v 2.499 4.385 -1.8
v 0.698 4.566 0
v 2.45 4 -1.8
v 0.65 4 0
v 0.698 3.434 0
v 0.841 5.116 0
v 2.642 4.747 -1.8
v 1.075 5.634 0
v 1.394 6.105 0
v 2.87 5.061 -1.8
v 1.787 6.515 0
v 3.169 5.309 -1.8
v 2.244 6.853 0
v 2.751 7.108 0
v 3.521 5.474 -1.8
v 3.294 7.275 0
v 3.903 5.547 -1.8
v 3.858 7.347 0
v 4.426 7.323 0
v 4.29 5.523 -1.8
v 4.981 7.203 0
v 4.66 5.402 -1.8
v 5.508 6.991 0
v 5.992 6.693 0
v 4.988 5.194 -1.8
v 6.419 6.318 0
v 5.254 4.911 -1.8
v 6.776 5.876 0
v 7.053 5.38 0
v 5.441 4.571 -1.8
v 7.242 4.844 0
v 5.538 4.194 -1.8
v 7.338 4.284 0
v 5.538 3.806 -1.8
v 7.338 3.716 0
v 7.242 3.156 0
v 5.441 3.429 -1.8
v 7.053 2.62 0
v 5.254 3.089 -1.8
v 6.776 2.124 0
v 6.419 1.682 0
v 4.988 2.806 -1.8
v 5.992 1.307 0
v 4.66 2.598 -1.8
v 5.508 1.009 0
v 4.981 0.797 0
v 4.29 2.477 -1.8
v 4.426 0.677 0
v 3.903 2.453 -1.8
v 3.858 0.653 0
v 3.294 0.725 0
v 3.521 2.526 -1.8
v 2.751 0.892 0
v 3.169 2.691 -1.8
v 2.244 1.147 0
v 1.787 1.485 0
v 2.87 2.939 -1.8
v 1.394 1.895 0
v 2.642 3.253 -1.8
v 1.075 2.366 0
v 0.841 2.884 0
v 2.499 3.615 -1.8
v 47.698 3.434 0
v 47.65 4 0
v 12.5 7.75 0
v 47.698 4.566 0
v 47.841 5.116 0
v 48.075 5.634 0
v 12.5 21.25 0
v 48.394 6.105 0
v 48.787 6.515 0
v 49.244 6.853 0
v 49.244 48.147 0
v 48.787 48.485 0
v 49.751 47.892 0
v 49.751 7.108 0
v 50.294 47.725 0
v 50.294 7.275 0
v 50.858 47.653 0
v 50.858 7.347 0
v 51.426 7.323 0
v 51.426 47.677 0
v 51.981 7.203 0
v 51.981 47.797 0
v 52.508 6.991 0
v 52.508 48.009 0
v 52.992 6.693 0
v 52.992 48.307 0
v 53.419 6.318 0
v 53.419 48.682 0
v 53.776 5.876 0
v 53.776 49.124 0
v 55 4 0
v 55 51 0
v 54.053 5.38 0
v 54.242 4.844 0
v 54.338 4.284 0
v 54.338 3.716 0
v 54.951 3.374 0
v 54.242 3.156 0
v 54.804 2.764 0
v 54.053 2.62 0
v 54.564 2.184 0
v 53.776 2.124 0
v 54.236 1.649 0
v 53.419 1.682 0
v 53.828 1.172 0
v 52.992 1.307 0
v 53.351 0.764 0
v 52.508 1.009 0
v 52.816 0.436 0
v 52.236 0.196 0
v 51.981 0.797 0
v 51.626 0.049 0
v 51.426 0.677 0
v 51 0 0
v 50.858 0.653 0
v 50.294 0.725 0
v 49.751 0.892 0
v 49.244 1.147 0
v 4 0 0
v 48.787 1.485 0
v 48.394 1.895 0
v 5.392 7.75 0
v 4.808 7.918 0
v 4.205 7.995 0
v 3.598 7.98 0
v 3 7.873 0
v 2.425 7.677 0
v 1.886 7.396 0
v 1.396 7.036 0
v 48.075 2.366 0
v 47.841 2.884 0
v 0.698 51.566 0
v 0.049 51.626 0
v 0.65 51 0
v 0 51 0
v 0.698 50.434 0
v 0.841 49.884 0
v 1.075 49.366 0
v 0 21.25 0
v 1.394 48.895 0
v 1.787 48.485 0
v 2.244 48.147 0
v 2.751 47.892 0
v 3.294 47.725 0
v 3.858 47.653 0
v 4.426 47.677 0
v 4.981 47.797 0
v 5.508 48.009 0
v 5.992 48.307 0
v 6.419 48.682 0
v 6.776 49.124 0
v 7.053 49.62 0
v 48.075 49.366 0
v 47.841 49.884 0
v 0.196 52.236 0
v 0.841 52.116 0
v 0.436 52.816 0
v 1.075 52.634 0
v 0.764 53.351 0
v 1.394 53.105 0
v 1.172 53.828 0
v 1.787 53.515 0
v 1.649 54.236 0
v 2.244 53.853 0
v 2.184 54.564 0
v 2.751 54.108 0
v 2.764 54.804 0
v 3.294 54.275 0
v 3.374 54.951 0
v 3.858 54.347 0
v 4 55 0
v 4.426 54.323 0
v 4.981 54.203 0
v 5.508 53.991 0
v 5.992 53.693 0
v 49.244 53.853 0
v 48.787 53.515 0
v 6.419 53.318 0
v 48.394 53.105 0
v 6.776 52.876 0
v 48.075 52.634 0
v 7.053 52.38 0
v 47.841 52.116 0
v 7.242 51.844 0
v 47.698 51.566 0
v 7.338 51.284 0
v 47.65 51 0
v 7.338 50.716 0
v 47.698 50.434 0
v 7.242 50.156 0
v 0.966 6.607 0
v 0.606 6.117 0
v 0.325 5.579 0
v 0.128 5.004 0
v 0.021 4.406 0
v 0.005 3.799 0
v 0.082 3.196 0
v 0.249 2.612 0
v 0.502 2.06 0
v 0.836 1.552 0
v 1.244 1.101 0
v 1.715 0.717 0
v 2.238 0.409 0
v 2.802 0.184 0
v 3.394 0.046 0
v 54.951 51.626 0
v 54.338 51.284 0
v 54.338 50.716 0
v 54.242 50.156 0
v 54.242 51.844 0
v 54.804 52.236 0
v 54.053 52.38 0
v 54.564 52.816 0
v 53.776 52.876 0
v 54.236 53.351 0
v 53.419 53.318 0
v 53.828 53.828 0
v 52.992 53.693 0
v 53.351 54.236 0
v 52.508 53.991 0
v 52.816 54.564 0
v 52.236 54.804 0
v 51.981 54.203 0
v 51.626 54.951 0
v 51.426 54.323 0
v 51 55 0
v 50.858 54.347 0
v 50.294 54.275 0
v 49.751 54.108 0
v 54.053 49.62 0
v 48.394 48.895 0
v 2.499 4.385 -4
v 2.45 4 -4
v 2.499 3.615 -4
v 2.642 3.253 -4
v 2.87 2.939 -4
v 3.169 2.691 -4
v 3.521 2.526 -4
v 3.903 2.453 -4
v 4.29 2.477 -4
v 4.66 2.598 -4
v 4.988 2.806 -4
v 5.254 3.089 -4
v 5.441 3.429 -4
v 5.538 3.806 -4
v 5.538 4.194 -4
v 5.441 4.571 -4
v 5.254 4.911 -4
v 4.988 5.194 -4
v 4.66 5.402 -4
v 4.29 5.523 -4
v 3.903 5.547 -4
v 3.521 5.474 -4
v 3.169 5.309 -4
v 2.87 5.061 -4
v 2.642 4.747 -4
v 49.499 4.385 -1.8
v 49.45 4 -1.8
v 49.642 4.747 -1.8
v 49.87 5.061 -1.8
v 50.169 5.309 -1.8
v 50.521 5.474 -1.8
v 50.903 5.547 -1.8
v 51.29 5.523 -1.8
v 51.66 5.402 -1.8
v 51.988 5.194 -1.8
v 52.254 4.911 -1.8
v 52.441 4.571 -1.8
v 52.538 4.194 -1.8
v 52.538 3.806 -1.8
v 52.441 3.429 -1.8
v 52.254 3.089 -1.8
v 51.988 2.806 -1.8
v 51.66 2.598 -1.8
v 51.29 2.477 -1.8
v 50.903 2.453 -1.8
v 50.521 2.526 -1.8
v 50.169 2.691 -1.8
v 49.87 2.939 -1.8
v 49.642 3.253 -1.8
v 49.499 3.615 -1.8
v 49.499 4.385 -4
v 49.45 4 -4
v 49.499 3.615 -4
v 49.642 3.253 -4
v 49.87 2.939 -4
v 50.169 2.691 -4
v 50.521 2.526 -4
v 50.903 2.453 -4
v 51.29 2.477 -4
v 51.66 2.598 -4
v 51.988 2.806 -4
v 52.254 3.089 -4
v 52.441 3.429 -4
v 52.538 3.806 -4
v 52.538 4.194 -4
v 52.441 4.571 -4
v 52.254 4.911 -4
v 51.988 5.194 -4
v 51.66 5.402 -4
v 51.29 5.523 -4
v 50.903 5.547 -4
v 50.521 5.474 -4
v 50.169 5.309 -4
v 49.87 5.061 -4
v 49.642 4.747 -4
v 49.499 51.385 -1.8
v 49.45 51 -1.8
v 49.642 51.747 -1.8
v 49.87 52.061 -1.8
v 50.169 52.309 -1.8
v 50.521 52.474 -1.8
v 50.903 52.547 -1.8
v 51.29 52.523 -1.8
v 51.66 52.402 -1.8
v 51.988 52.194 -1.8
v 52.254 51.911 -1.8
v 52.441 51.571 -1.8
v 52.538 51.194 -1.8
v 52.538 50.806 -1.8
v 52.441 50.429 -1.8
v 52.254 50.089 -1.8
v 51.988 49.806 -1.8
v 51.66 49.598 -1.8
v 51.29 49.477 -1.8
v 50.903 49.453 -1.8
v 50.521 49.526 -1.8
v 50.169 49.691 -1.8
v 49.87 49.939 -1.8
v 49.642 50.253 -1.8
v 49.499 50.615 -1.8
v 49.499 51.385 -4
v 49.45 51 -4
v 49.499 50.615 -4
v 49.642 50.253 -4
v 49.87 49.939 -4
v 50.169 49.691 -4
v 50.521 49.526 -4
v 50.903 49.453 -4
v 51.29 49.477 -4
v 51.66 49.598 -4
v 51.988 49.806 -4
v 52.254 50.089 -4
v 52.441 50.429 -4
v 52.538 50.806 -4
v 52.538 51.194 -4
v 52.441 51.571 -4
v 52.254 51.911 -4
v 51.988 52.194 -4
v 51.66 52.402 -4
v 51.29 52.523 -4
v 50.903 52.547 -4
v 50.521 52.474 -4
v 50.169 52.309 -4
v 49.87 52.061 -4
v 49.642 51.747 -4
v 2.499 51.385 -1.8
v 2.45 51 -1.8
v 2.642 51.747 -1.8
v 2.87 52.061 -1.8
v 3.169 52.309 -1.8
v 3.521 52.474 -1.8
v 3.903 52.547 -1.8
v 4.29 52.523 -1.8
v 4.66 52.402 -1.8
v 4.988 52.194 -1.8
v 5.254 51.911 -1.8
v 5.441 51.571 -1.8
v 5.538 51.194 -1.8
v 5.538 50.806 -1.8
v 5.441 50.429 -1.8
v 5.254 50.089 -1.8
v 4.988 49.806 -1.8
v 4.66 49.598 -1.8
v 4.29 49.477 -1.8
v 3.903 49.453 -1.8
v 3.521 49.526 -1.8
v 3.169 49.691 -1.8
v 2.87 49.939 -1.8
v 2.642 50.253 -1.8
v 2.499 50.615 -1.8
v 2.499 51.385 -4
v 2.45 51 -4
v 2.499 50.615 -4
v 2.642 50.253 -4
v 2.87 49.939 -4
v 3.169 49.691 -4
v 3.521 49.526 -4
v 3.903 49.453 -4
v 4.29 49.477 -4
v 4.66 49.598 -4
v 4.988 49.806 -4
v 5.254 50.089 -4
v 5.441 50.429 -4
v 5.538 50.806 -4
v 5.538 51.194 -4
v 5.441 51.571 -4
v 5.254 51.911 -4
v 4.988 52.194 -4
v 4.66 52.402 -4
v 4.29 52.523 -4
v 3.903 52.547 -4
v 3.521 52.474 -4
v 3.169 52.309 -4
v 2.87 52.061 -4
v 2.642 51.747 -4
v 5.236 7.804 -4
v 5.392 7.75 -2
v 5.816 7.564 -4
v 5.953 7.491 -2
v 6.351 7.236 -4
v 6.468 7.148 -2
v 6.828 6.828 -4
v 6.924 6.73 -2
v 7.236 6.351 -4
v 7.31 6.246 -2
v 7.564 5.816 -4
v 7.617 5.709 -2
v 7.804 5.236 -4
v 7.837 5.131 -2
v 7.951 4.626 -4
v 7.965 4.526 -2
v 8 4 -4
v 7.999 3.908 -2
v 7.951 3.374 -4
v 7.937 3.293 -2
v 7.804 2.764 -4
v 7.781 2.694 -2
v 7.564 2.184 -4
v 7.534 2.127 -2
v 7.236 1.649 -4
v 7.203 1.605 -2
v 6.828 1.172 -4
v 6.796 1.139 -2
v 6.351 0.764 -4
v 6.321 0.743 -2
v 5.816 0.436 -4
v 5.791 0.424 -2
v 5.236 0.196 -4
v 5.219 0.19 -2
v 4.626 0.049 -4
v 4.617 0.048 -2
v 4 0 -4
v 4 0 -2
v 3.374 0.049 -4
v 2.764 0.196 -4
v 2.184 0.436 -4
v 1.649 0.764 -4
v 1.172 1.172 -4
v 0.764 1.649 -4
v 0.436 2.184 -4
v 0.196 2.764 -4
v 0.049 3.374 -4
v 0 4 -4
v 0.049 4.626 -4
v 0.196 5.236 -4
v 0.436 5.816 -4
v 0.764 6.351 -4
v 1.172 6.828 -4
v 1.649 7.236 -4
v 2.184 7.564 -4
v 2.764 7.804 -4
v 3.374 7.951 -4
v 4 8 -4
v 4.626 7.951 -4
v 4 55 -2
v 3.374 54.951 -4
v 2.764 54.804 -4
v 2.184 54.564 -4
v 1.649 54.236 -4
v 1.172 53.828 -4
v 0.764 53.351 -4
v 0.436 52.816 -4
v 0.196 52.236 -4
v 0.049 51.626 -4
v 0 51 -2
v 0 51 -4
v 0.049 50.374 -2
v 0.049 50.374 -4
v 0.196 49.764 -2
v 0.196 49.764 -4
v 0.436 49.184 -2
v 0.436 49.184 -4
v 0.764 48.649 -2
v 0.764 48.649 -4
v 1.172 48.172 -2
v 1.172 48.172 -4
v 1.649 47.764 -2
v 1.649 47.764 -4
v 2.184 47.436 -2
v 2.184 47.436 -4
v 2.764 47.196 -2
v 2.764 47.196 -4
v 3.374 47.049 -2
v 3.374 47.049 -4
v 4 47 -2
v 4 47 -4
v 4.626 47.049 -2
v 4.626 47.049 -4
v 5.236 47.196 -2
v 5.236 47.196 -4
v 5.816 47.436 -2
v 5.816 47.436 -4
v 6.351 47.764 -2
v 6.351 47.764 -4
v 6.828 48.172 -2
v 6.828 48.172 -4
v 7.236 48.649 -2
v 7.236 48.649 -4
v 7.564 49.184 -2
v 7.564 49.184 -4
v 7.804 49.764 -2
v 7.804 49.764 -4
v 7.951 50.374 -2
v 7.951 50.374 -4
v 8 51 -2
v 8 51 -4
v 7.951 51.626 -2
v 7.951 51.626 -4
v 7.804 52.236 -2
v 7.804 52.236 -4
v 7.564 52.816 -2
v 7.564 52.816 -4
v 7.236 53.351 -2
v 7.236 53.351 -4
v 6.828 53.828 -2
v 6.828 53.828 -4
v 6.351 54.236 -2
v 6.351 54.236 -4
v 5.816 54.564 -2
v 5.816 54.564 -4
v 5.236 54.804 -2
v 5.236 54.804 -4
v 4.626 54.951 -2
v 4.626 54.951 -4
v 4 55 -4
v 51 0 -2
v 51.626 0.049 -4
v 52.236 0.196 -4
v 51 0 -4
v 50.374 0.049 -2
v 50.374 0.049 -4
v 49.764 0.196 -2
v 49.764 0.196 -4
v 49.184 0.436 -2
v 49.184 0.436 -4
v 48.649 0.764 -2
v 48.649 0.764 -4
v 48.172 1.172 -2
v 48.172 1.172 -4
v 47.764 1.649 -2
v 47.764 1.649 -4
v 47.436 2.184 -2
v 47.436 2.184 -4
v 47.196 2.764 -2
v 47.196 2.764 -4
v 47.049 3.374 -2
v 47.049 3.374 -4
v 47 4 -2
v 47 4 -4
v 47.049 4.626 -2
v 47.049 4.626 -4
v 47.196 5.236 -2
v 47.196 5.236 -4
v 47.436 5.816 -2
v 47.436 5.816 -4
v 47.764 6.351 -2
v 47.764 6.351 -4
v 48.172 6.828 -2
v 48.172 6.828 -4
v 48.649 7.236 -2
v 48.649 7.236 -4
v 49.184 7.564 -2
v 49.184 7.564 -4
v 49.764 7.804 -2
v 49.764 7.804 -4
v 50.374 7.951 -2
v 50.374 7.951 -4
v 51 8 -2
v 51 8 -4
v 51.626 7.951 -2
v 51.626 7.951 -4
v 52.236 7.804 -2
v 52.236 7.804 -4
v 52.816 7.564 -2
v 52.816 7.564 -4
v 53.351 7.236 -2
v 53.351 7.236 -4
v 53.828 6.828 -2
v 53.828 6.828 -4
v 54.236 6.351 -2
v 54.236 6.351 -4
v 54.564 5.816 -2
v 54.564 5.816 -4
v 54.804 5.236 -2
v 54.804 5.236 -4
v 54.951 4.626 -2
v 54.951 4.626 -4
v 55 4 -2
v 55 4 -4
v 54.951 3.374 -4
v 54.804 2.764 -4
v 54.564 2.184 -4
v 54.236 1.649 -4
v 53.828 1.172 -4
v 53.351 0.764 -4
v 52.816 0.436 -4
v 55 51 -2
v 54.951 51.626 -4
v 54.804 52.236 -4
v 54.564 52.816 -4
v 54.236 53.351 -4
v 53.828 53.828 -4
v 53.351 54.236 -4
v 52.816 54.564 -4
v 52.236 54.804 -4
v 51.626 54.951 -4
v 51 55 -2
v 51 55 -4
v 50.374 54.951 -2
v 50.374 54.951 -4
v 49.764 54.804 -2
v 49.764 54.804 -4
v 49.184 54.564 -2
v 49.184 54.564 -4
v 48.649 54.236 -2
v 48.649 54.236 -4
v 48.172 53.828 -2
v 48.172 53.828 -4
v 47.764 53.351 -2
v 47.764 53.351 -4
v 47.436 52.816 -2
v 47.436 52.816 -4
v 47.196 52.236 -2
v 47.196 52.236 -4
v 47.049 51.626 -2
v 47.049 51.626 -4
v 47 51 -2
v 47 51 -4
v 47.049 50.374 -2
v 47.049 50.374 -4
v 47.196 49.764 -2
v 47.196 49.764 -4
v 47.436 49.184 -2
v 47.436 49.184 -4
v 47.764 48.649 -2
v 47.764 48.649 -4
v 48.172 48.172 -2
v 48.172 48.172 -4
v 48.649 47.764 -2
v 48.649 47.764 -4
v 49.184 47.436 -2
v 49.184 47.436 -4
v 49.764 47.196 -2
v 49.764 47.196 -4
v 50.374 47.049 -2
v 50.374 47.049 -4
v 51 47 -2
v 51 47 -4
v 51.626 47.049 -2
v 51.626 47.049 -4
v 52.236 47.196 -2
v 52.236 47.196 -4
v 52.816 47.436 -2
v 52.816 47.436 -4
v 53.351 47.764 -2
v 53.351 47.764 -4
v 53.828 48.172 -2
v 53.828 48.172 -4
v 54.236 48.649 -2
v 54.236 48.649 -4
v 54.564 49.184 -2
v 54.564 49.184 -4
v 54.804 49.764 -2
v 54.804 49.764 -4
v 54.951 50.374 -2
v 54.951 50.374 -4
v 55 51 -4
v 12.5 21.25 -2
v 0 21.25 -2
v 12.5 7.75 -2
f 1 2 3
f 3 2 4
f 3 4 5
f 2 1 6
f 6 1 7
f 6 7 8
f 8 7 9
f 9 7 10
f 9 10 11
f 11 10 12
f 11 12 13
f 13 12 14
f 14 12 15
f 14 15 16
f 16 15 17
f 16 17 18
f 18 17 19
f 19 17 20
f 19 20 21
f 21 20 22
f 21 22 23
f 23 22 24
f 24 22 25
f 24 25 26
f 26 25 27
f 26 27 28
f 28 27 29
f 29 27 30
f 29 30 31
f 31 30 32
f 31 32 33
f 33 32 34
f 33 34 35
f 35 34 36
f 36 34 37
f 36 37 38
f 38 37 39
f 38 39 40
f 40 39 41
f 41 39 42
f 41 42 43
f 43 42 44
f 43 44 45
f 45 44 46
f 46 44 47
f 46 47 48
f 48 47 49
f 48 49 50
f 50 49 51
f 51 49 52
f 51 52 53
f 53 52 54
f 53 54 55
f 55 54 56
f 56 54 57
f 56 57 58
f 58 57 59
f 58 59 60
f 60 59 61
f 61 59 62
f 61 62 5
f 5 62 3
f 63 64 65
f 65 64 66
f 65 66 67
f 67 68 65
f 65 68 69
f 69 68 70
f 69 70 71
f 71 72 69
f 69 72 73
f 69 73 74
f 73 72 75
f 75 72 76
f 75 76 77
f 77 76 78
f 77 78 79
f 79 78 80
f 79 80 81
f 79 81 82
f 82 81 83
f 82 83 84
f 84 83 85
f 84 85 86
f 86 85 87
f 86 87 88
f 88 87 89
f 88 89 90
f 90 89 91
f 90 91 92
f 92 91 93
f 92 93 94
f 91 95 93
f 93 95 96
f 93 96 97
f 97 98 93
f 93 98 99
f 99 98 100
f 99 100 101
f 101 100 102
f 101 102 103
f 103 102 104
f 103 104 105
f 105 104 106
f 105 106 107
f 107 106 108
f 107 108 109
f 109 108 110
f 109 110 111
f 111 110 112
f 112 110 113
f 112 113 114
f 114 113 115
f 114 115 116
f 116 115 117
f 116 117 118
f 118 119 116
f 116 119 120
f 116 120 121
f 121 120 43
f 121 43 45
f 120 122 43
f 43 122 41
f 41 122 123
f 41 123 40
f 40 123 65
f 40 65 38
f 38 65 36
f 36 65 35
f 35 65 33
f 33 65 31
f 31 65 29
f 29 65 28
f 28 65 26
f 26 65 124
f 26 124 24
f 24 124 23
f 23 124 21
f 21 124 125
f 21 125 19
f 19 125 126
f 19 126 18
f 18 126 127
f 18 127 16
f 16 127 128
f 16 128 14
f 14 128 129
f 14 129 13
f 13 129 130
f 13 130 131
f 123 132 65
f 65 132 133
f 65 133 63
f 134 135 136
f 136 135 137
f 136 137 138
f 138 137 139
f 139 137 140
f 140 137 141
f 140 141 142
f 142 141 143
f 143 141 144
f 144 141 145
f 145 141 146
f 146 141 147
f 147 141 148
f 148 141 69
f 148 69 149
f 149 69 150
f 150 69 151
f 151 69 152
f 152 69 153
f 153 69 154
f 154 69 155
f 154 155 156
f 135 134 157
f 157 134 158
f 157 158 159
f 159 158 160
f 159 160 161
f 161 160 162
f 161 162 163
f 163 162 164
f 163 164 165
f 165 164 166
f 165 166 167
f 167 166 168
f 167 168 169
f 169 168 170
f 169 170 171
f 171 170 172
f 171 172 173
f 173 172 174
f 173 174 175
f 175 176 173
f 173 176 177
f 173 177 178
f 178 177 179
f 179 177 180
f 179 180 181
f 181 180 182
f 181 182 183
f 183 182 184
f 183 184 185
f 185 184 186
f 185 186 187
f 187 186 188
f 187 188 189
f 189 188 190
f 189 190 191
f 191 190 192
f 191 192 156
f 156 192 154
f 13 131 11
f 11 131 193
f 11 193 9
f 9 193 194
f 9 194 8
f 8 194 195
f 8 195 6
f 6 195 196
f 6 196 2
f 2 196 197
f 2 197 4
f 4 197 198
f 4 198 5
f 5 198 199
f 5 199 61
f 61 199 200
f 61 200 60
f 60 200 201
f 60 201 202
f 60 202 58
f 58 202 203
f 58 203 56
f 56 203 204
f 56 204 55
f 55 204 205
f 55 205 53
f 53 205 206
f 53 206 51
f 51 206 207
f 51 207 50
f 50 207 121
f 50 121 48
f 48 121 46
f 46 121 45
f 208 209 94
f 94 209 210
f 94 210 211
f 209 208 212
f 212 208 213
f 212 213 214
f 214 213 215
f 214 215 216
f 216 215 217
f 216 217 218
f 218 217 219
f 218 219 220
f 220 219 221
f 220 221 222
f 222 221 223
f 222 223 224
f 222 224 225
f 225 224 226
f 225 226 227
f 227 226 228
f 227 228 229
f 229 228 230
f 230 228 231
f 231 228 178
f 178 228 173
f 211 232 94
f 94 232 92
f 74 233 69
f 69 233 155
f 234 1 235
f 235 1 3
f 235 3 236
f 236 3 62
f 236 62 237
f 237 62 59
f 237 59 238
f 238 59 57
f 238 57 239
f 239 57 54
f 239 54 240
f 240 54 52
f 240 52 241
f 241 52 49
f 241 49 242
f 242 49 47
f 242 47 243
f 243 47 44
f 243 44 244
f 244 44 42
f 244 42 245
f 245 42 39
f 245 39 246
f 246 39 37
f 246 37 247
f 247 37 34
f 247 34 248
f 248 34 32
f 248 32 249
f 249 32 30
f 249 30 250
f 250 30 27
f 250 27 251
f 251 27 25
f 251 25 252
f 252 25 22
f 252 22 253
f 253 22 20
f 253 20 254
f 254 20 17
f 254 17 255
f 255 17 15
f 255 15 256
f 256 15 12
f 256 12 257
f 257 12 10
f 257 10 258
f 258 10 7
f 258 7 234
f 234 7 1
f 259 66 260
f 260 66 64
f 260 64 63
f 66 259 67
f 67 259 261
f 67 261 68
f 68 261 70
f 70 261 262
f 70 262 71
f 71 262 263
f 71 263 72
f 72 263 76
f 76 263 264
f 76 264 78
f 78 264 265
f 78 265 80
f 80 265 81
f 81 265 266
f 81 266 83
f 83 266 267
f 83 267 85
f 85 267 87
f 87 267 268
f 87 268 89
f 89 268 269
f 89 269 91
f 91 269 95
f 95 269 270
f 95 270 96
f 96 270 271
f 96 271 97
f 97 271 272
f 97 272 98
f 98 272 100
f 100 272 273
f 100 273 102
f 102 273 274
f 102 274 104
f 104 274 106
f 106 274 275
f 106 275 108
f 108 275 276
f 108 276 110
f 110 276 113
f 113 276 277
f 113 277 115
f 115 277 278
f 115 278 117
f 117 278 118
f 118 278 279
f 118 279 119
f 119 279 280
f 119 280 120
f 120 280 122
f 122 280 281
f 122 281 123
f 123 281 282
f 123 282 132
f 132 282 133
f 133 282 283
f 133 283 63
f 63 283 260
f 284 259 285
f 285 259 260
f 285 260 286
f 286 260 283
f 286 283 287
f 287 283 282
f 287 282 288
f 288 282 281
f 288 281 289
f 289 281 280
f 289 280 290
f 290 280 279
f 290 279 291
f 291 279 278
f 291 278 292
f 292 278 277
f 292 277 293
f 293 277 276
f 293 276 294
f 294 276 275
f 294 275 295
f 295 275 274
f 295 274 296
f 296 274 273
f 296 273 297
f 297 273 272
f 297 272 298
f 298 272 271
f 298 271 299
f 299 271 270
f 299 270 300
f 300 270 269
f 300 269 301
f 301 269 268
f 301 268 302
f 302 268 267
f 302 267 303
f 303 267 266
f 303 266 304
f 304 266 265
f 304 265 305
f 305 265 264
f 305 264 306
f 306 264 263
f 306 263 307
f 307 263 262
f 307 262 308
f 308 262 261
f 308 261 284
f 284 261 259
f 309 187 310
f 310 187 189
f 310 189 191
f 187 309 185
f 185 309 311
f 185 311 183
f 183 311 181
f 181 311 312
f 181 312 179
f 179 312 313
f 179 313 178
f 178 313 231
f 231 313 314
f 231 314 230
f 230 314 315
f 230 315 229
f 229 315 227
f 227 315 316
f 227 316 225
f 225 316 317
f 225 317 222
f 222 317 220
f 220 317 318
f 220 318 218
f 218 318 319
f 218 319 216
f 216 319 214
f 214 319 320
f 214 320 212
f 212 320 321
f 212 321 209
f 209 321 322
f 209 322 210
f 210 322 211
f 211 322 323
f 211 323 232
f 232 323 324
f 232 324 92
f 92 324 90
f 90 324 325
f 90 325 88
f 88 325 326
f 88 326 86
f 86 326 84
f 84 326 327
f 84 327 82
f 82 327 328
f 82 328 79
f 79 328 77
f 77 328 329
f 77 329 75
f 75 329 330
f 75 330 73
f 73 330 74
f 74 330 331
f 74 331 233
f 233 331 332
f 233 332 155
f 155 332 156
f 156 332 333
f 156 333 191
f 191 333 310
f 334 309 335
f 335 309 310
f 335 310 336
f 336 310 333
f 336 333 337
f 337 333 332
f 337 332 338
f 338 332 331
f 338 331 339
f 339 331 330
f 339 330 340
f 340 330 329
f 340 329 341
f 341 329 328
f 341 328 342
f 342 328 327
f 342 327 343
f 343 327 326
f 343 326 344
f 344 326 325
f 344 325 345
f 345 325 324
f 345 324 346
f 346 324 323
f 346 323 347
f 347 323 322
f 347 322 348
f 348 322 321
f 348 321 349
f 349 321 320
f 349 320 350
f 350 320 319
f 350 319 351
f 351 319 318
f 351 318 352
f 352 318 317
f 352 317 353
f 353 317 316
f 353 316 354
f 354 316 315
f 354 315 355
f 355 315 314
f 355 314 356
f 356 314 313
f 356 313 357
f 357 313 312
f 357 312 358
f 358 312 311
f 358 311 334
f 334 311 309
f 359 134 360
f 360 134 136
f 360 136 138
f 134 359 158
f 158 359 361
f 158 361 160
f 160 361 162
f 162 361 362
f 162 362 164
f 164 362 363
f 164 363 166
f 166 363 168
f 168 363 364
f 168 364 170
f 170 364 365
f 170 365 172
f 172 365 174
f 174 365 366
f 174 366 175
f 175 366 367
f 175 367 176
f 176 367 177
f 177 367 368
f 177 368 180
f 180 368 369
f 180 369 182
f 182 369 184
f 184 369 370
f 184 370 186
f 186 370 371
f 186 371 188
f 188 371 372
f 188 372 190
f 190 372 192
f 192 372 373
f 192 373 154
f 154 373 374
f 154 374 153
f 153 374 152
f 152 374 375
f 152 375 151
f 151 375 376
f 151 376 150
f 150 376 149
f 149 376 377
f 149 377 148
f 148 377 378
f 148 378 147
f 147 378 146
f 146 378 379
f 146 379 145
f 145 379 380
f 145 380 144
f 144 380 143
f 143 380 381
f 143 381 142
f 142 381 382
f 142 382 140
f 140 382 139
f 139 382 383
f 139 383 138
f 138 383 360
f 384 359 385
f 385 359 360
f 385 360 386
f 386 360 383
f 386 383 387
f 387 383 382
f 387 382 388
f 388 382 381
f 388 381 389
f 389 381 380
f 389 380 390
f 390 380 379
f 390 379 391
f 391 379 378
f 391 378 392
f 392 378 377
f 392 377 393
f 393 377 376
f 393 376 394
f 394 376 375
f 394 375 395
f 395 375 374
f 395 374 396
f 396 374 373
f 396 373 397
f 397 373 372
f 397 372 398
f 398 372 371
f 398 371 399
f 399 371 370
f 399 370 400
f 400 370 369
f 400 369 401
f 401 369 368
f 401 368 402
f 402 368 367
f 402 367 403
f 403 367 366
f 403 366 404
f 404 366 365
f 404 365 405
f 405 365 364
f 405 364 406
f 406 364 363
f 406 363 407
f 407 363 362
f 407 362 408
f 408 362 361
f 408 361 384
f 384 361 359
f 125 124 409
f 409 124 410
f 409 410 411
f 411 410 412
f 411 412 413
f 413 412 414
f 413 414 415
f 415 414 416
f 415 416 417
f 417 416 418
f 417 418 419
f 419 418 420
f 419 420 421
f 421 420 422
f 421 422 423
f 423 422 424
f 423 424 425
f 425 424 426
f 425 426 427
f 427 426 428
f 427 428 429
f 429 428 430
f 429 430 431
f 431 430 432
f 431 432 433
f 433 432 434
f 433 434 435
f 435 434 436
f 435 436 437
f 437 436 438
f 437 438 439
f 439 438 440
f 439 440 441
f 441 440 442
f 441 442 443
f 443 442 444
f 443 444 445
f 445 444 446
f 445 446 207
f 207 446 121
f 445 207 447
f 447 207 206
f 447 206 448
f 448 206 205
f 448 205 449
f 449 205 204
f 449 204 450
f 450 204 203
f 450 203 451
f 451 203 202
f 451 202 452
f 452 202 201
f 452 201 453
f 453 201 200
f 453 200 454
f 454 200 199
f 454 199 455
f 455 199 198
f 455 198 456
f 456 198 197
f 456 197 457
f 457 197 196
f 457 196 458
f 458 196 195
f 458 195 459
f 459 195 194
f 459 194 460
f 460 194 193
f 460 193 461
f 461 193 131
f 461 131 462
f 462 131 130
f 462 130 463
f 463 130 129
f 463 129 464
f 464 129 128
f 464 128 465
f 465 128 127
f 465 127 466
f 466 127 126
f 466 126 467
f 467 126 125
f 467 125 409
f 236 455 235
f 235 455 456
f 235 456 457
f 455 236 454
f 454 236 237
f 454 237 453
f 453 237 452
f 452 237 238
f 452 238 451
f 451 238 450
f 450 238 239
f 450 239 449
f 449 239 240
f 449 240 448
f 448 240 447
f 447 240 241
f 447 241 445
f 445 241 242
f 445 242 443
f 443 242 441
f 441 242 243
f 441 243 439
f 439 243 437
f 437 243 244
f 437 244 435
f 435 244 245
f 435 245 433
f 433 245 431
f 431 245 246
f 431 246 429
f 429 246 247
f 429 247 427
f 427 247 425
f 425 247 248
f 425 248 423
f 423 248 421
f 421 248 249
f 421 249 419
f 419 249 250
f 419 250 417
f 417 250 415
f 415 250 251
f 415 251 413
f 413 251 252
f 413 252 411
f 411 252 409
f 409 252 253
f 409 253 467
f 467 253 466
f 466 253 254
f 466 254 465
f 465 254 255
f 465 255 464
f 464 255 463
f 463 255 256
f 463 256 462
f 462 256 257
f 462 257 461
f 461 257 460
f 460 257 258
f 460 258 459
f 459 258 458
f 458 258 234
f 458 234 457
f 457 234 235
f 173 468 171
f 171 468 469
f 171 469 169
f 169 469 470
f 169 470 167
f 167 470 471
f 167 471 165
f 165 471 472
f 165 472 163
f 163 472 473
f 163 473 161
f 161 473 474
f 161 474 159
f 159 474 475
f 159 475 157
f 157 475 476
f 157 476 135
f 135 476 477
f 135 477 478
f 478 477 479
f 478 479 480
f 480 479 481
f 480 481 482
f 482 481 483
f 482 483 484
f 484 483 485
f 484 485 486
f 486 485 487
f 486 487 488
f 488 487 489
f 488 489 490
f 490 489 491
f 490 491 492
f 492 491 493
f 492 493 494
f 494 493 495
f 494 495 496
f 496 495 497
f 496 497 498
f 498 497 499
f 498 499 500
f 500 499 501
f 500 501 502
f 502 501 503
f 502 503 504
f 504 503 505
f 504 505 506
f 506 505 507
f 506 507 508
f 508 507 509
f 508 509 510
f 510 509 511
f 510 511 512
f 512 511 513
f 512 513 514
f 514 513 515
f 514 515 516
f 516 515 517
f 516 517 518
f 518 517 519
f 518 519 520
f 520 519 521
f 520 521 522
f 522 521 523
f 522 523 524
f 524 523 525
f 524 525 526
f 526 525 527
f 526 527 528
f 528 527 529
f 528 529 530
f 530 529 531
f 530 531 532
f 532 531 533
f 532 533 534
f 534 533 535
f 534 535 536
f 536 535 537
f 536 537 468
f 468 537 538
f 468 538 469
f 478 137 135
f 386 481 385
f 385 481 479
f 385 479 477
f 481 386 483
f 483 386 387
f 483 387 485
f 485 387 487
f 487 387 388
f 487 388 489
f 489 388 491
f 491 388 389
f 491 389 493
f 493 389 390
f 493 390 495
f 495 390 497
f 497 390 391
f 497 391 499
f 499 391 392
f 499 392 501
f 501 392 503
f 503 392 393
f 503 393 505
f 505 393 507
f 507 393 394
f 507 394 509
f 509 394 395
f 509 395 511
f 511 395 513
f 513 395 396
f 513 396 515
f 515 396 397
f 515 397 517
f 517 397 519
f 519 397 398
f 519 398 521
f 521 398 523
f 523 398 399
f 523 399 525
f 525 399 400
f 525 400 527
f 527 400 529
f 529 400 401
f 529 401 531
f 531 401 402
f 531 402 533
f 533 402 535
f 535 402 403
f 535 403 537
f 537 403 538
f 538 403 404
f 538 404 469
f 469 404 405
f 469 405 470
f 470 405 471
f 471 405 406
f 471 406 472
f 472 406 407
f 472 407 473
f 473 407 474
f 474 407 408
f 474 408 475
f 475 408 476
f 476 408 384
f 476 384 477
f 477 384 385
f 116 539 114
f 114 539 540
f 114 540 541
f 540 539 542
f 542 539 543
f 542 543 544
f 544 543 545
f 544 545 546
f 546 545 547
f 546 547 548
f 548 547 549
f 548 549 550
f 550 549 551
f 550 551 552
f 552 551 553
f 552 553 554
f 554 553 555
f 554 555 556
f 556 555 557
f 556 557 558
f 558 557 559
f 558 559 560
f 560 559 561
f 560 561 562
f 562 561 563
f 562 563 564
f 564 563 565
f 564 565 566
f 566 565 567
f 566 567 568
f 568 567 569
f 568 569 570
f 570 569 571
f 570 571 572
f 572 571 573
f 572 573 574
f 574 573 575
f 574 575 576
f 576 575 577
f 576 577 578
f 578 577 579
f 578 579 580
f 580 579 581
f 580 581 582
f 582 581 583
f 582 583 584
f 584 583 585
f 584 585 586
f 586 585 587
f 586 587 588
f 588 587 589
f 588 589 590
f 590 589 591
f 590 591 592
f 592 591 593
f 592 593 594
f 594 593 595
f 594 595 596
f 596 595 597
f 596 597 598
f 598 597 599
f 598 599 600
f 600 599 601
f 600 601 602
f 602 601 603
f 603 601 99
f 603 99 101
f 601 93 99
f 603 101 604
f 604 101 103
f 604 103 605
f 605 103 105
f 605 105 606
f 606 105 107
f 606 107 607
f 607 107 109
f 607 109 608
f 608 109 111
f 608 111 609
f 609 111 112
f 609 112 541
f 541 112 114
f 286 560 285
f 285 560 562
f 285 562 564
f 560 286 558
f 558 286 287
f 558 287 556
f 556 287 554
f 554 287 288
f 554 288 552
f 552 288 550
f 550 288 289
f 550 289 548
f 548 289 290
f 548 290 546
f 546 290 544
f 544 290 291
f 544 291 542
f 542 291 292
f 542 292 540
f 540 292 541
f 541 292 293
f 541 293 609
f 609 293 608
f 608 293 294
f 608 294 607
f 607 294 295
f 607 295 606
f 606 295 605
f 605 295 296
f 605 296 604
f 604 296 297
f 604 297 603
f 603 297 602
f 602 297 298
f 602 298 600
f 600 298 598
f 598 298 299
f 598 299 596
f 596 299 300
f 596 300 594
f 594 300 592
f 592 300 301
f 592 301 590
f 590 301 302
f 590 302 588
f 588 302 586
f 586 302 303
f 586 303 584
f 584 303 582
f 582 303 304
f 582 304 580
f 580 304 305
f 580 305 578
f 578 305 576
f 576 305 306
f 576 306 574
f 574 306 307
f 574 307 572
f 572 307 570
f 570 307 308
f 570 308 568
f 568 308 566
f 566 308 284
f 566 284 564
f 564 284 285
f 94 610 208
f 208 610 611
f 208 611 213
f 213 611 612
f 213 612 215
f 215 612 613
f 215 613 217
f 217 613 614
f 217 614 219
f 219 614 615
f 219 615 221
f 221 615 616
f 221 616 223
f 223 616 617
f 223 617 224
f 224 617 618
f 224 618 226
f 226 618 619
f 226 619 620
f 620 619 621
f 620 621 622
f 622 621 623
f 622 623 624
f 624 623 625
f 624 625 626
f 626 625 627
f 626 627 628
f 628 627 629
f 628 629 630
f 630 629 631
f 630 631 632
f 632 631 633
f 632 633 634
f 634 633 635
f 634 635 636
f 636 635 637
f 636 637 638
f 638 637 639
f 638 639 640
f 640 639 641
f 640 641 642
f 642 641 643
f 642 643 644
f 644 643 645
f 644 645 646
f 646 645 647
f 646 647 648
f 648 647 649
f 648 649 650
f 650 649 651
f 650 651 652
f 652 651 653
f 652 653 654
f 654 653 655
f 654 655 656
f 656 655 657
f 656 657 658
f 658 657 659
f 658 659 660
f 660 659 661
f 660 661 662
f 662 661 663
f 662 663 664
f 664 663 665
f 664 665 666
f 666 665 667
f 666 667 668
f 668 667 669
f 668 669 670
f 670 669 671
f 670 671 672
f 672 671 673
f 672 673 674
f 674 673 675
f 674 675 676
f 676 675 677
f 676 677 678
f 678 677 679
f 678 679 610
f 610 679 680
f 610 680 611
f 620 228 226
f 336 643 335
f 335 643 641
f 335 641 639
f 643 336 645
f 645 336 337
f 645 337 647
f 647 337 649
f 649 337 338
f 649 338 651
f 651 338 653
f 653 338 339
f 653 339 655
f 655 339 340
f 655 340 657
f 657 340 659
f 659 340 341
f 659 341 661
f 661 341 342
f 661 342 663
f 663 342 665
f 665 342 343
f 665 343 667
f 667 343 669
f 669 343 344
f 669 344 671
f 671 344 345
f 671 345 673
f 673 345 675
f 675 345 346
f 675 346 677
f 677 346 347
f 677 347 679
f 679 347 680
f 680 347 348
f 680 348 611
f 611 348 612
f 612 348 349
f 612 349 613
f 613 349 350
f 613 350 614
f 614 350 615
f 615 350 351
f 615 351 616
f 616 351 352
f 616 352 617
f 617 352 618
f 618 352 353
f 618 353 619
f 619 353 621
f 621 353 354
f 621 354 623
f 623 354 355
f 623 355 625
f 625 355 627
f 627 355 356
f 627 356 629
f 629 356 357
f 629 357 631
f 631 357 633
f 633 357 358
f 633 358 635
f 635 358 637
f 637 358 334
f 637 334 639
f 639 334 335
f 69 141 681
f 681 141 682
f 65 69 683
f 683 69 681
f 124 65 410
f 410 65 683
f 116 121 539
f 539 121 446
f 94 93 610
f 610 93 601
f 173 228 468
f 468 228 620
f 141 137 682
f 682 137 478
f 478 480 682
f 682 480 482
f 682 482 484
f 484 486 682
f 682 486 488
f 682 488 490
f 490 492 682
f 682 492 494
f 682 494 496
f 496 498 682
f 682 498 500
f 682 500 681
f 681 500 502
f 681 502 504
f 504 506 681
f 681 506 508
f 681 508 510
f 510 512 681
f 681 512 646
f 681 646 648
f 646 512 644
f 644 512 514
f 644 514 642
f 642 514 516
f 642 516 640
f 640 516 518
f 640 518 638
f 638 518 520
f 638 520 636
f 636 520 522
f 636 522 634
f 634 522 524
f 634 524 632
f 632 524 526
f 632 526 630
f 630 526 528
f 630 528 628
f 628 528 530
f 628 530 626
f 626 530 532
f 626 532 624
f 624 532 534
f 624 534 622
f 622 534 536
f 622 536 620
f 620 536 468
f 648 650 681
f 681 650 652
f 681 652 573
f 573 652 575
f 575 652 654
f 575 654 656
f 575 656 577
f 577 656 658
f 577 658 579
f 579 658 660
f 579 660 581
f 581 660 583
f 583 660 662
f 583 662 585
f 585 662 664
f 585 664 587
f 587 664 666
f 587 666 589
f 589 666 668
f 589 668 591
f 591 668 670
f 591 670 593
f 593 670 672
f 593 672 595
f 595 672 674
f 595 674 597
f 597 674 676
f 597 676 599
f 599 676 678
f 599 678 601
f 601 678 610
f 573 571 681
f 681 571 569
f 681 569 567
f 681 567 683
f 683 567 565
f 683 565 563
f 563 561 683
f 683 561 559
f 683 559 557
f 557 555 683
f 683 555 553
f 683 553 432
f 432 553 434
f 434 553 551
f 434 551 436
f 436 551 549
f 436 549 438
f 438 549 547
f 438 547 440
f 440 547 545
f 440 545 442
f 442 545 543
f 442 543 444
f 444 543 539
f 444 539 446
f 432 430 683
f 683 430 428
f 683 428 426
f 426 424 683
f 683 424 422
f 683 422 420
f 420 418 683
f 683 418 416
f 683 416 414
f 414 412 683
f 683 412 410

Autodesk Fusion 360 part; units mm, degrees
sketch "Sketch1" plane through (0, 0, 0) normal (0, 0, 1) x (1, 0, 0)
  line L0 (0, 0) -> (55, 0)
  line L1 (55, 0) -> (55, 55)
  line L2 (55, 55) -> (0, 55)
  line L3 (0, 55) -> (0, 0)
  circle A0 centre (4, 51) radius 4
  circle A1 centre (51, 51) radius 4
  circle A2 centre (4, 4) radius 4
  circle A3 centre (51, 4) radius 4
  circle A4 centre (4, 51) radius 1.55
  circle A5 centre (51, 51) radius 1.55
  circle A6 centre (4, 4) radius 1.55
  circle A7 centre (51, 4) radius 1.55
  line L4 (0, 21.25) -> (12.5, 21.25)
  line L5 (12.5, 21.25) -> (12.5, 7.75)
  line L6 (12.5, 7.75) -> (0, 7.75)
  line L7 (0, 7.75) -> (0, 21.25)
  dimension "d1" = 55
  dimension "d2" = 55
  dimension "d3" = 8
  dimension "d4" = 8
  dimension "d5" = 8
  dimension "d6" = 8
  dimension "d7" = 4
  dimension "d8" = 4
  dimension "d9" = 4
  dimension "d10" = 4
  dimension "d11" = 4
  dimension "d12" = 4
  dimension "d13" = 4
  dimension "d14" = 4
  dimension "d15" = 3.1
  dimension "d16" = 3.1
  dimension "d17" = 3.1
  dimension "d18" = 3.1
  dimension "d24" = 12.5
  dimension "d25" = 13.5
  dimension "d26" = 7.75
extrude "Extrude3" add sketch "Sketch1" against normal blind 2 contours L0 L1 L2 L3 A0 A1 A2 A3 L4 L5 L6
extrude "Extrude4" add sketch "Sketch1" against normal blind 4 contours A2 L6 | A3 | A2 L6 | A1 | A0
chamfer "Chamfer2" distance 1.8 angle 45 4 edges at (2.5549, 51.5605, 0) (49.5549, 51.5605, 0) (49.5549, 4.5605, 0) (2.5549, 4.5605, 0)
